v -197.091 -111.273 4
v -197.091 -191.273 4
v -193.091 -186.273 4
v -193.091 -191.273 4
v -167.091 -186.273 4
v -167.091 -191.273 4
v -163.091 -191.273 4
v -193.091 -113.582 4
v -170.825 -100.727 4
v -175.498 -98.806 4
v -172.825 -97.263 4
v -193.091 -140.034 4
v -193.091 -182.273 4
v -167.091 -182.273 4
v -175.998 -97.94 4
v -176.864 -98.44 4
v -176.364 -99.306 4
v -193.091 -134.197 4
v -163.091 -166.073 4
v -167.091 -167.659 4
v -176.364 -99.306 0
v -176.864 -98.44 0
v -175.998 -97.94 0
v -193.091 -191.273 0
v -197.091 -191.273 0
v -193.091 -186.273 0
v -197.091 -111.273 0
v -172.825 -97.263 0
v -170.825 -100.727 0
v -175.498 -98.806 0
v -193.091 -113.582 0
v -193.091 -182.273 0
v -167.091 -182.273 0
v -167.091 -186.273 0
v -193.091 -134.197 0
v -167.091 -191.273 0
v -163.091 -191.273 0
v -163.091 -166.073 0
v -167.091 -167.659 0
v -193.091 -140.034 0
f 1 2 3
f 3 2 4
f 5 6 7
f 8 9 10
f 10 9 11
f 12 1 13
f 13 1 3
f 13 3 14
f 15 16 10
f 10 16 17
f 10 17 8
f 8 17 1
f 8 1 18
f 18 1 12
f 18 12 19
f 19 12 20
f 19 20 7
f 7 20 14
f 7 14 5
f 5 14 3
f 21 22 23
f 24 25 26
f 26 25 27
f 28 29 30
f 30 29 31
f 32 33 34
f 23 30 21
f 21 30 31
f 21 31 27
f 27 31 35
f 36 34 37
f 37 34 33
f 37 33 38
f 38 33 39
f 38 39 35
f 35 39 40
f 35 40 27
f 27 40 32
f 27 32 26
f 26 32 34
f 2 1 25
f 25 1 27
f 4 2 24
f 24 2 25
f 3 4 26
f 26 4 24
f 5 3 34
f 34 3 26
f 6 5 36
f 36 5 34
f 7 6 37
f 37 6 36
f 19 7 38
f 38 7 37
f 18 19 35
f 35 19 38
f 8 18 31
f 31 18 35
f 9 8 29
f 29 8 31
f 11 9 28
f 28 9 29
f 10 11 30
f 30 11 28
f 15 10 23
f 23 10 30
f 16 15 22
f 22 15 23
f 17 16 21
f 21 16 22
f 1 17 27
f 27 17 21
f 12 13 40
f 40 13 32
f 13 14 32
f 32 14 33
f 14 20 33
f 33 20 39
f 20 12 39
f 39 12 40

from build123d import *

# Parameters (mm, degrees)
EXTRUDE_1_DEPTH = 4


with BuildPart() as part:
    # 草图1 → 凸台-拉伸1 (new body)
    with BuildSketch(Plane.XY):
        Polygon((-163.090909091, -166.072727273), (-193.090909091, -134.197202987), (-193.090909091, -113.582128349), (-170.824877277, -100.726828888), (-172.824877277, -97.262727273), (-175.497524751, -98.805781011), (-175.997524751, -97.939755608), (-176.863550155, -98.439755608), (-176.363550155, -99.305781011), (-197.090909091, -111.272727273), (-197.090909091, -191.272727273), (-193.090909091, -191.272727273), (-193.090909091, -186.272727273), (-167.090909091, -186.272727273), (-167.090909091, -191.272727273), (-163.090909091, -191.272727273), align=None)
        Polygon((-193.090909091, -182.272727273), (-167.090909091, -182.272727273), (-167.090909091, -167.659017038), (-193.090909091, -140.033562656), align=None, mode=Mode.SUBTRACT)
    extrude(amount=EXTRUDE_1_DEPTH)


solid = part.part
